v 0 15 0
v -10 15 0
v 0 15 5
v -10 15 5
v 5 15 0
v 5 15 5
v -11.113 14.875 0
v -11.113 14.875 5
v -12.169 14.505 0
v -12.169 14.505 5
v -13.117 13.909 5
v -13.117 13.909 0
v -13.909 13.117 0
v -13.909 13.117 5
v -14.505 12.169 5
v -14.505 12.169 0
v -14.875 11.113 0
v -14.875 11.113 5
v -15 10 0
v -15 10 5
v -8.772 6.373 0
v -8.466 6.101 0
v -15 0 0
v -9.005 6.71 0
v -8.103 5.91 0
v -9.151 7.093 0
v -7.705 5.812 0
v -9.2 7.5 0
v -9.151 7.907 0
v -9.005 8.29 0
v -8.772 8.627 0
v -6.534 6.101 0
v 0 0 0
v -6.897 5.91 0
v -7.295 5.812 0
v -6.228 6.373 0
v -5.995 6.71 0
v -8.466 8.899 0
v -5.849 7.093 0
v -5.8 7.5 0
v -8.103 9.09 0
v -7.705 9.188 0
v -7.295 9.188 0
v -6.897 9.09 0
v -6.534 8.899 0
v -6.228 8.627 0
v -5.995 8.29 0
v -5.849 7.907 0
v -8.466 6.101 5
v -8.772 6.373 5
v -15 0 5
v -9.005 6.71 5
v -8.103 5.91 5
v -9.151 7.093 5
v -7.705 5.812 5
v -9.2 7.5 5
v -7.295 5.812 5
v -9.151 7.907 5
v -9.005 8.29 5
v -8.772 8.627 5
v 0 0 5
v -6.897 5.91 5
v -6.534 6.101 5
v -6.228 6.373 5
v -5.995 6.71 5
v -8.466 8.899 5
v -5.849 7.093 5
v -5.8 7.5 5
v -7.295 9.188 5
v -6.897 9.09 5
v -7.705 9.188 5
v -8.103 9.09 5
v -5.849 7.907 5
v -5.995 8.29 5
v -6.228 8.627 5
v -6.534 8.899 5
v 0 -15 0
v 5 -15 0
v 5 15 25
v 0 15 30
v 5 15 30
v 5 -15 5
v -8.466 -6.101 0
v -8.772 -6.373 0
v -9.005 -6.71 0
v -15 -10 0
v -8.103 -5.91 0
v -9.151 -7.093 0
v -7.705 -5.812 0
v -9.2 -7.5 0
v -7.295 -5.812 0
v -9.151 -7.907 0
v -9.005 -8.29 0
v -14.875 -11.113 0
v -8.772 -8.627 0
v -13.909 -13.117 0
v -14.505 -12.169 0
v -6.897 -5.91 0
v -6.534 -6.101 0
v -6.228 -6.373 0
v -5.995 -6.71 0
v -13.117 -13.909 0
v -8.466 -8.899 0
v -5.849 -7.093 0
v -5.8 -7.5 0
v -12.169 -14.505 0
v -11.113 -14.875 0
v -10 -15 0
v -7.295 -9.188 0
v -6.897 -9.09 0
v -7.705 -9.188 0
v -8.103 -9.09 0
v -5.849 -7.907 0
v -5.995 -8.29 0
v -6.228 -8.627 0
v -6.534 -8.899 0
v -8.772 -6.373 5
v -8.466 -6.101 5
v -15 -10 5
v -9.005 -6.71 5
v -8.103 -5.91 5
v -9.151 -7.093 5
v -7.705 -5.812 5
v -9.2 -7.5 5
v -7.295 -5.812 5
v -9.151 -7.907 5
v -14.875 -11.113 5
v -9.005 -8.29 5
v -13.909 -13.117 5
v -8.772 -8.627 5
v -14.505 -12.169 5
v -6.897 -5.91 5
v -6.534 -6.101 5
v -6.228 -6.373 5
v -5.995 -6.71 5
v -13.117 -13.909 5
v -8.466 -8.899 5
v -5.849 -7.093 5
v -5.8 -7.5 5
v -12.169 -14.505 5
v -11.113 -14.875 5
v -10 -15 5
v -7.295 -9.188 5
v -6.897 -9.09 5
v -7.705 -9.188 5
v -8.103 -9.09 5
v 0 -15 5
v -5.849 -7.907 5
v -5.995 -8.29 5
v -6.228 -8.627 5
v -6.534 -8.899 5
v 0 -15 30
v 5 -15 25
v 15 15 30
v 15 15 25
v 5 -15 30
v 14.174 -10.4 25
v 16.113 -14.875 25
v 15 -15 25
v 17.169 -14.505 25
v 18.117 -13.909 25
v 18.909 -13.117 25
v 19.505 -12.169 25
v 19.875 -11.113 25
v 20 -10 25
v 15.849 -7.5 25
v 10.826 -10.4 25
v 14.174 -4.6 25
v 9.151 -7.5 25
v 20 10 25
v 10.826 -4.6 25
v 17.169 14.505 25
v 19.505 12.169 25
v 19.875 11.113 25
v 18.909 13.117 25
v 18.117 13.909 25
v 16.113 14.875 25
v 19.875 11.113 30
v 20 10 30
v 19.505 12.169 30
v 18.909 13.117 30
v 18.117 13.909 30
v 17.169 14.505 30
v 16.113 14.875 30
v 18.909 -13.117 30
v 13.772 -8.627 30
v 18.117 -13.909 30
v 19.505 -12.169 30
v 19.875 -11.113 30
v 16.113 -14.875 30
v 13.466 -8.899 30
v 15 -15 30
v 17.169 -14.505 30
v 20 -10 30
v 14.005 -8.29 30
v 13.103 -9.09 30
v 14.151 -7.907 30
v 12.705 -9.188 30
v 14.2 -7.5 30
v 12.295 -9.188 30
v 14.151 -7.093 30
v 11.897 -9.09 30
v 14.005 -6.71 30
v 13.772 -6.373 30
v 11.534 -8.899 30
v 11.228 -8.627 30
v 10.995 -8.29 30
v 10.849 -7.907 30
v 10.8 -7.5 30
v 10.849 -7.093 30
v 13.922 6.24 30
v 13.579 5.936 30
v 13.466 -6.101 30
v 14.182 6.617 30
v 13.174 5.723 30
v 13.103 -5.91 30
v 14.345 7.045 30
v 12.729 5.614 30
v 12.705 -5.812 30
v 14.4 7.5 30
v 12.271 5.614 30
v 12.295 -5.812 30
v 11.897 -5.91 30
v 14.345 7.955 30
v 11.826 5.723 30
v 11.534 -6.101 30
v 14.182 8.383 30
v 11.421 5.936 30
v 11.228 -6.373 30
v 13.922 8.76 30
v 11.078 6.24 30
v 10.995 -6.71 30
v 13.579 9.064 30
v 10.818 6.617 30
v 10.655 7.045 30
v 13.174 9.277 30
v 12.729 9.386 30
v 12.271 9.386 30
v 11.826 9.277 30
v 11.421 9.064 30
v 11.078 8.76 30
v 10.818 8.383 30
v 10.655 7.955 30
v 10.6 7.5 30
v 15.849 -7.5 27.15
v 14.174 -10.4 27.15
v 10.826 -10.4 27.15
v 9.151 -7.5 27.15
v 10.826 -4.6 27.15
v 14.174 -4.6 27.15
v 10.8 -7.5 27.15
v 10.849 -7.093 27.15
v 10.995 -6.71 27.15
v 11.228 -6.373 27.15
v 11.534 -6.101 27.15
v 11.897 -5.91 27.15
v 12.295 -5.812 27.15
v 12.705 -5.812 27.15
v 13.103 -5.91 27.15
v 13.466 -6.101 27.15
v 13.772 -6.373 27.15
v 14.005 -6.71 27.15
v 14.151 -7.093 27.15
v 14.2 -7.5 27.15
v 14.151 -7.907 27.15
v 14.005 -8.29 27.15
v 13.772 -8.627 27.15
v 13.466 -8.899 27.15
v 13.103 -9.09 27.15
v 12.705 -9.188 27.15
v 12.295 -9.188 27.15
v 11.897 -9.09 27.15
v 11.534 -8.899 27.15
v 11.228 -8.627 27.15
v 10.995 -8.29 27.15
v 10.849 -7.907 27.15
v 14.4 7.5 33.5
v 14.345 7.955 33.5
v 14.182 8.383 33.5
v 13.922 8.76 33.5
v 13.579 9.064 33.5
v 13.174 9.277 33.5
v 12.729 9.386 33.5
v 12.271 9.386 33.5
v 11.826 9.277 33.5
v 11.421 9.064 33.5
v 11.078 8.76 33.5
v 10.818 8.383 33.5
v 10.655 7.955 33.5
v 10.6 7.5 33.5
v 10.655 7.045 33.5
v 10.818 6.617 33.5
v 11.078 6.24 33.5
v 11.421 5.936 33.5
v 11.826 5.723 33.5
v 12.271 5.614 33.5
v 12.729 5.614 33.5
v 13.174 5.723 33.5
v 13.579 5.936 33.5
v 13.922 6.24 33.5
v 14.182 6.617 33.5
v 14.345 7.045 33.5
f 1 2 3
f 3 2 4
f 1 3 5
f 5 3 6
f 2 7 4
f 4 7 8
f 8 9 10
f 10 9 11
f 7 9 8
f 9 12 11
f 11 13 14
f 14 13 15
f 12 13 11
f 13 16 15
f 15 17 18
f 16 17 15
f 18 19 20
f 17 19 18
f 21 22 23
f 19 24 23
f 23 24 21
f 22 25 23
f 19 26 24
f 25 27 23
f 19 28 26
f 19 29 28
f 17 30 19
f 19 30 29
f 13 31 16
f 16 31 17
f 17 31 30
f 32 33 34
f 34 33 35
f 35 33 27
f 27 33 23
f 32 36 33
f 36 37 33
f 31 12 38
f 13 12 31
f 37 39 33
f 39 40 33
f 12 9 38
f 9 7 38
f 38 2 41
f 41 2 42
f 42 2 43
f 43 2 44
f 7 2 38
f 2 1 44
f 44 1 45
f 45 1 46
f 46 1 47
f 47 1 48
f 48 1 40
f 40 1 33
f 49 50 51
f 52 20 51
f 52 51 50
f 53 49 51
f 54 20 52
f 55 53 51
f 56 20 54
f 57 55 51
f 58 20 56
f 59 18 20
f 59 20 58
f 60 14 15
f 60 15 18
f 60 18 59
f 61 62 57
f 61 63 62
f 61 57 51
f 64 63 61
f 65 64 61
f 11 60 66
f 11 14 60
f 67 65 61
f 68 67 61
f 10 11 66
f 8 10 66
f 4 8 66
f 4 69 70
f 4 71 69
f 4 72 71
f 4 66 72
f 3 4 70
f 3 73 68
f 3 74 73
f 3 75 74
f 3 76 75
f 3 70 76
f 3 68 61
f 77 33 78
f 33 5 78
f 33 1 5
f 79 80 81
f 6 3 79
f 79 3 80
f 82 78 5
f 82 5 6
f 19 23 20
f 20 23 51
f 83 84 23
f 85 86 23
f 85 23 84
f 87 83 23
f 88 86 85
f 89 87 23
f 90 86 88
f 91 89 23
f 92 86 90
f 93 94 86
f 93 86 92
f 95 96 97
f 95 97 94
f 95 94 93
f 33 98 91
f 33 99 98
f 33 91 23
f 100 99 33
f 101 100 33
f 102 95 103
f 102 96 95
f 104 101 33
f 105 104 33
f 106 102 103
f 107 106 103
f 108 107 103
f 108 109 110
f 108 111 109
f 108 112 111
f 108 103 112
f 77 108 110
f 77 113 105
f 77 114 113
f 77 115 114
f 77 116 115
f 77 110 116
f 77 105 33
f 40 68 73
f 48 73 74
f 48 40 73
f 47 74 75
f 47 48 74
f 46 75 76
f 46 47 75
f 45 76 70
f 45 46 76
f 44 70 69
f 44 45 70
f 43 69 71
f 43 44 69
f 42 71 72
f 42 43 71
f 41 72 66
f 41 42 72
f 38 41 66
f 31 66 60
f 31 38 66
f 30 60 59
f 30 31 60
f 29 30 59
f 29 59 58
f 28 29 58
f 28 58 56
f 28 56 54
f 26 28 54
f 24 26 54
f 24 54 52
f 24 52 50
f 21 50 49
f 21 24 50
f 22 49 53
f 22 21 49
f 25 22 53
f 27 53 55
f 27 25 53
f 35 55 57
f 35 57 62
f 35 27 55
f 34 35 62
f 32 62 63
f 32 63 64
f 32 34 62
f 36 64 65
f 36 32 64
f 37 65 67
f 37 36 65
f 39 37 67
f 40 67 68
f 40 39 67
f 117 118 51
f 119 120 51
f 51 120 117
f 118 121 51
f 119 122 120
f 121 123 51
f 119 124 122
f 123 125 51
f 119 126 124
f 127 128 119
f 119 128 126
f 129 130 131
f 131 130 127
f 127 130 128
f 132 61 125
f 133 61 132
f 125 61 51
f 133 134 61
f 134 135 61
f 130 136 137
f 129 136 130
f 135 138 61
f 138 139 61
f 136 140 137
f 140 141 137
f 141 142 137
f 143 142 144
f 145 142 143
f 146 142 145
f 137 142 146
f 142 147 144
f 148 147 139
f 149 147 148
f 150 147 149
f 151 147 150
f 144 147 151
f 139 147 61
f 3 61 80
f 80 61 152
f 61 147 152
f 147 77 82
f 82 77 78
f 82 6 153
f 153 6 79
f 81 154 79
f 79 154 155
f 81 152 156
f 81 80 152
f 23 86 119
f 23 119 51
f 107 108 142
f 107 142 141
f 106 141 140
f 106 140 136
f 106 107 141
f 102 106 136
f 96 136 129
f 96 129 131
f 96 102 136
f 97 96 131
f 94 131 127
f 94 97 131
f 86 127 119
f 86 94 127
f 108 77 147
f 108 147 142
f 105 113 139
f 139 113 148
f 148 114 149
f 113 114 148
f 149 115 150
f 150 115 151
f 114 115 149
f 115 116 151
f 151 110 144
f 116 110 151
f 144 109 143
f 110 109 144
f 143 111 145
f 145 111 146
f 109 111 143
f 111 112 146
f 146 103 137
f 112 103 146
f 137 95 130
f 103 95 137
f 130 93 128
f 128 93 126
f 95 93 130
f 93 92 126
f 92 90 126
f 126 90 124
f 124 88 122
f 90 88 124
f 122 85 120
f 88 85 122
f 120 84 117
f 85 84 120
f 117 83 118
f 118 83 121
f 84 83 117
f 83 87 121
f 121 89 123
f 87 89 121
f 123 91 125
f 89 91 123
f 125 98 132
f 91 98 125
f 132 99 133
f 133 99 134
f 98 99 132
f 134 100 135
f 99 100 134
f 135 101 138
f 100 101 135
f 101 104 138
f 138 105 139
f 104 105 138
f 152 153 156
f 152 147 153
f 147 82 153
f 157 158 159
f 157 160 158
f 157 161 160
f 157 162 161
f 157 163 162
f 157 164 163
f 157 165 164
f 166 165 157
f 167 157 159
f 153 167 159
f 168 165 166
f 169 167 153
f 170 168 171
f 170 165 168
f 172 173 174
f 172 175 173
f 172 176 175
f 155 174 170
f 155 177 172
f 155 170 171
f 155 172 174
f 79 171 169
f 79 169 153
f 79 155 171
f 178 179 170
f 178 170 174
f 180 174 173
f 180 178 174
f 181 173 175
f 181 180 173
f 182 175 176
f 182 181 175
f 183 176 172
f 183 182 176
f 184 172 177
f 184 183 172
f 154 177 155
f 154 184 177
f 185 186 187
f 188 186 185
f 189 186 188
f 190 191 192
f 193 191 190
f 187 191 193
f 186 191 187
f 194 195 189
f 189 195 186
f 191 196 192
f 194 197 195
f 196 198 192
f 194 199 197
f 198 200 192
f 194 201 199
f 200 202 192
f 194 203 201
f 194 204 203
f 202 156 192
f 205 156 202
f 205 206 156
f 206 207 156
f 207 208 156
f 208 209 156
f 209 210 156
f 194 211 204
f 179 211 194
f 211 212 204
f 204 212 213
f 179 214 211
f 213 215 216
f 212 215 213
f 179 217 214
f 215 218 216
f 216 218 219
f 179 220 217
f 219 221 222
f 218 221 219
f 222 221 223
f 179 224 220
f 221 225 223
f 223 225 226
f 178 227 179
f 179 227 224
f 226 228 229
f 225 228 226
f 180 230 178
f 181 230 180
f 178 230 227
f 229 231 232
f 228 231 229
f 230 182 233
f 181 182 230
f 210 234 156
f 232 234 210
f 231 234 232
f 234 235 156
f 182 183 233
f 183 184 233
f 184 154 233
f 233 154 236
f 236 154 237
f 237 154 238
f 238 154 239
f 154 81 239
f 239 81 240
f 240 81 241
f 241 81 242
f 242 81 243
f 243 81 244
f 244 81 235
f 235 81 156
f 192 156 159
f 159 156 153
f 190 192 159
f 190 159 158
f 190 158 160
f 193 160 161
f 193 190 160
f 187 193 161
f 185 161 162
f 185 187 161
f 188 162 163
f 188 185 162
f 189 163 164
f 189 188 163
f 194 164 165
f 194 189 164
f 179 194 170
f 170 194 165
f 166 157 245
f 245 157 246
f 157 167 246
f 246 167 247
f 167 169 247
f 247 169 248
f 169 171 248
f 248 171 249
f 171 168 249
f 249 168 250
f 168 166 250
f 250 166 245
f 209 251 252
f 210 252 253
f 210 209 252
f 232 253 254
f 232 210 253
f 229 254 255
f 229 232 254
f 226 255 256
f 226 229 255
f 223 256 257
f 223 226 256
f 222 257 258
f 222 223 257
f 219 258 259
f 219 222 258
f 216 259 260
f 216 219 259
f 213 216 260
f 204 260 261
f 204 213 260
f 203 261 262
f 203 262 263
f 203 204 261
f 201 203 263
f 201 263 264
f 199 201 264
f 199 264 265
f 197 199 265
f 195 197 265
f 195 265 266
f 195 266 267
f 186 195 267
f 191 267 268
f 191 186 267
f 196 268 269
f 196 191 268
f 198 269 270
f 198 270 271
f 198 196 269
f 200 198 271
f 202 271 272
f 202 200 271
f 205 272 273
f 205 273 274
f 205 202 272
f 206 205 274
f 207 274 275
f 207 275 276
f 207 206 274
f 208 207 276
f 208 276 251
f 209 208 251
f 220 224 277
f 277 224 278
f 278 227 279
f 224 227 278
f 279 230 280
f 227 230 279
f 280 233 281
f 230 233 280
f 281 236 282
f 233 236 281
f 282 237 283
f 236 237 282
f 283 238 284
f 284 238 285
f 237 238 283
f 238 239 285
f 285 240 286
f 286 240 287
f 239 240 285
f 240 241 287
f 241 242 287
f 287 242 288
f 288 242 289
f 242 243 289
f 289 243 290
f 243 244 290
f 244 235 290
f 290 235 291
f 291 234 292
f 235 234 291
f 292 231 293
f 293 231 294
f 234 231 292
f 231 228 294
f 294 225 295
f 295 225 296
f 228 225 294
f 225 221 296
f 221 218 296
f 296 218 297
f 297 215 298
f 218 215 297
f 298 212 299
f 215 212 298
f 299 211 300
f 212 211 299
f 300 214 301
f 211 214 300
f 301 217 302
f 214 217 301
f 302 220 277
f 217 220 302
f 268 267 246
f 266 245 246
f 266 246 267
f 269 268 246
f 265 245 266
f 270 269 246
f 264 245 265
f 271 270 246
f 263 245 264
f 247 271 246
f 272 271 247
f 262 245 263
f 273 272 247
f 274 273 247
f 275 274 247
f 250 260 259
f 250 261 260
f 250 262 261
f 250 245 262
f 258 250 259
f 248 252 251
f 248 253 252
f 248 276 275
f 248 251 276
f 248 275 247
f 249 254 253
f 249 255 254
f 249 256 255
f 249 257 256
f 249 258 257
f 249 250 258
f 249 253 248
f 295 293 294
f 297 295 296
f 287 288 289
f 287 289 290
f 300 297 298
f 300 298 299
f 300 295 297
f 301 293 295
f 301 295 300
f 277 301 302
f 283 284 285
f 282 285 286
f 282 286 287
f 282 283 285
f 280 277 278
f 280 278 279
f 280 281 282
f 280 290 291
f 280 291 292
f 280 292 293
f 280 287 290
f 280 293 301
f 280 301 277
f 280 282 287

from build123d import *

# Parameters (mm, degrees)
PAD_DEPTH     = 5
SKETCH001_R   = 1.7
HOLE_DEPTH    = 72.8243
SKETCH002_W   = 30
SKETCH002_H   = 5
PAD001_DEPTH  = 5
SKETCH003_W   = 5
SKETCH003_H   = 30
PAD002_DEPTH  = 25
PAD003_DEPTH  = 5
POCKET_DEPTH  = 2.15
SKETCH006_R   = 1.7
HOLE001_DEPTH = 2.851
SKETCH007_R   = 1.9
PAD004_DEPTH  = 3.5


with BuildPart() as part:
    # Sketch → Pad (new body)
    with BuildSketch(Plane.XY):
        with BuildLine():
            Line((-15, 0), (0, 0))
            Line((0, 0), (0, 15))
            Line((0, 15), (-10, 15))
            ThreePointArc((-10, 15), (-13.535534, 13.535534), (-15, 10))
            Line((-15, 10), (-15, 0))
        make_face()
    pad = extrude(amount=PAD_DEPTH)

    # Mirrored: Pad across XZ
    add(pad.mirror(Plane.XZ))

    # Sketch001 (on Face5 of Mirrored) → Hole (cut, through all)
    with BuildSketch(Plane.XY.offset(5)):
        with Locations((-7.5, 7.5)):
            Circle(SKETCH001_R)
    hole = extrude(amount=-HOLE_DEPTH, mode=Mode.SUBTRACT)

    # Mirrored001: Hole across XZ
    add(hole.mirror(Plane.XZ), mode=Mode.SUBTRACT)

    # Sketch002 (on Face2 of Mirrored001) → Pad001 (join)
    with BuildSketch(Plane.YZ):
        with Locations((0, 2.5)):
            Rectangle(SKETCH002_W, SKETCH002_H)
    extrude(amount=PAD001_DEPTH)

    # Sketch003 (on Face12 of Pad001) → Pad002 (join)
    with BuildSketch(Plane.XY.offset(5)):
        with Locations((2.5, 0)):
            Rectangle(SKETCH003_W, SKETCH003_H)
    extrude(amount=PAD002_DEPTH)

    # Sketch004 (on Face16 of Pad002) → Pad003 (join)
    with BuildSketch(Plane.XY.offset(30)):
        with BuildLine():
            Line((5, 15), (15, 15))
            ThreePointArc((20, 10), (18.535534, 13.535534), (15, 15))
            Line((20, 10), (20, -10))
            ThreePointArc((15, -15), (18.535534, -13.535534), (20, -10))
            Line((15, -15), (5, -15))
            Line((5, -15), (5, 15))
        make_face()
    extrude(amount=-PAD003_DEPTH)

    # Sketch005 (on Face23 of Pad003) → Pocket (cut)
    with BuildSketch(Plane(origin=(0, 0, 25), x_dir=(1, 0, 0), z_dir=(0, 0, -1))):
        Polygon((15.848632, 7.5), (14.174316, 10.4), (10.825684, 10.4), (9.151368, 7.5), (10.825684, 4.6), (14.174316, 4.6), align=None)
    extrude(amount=-POCKET_DEPTH, mode=Mode.SUBTRACT)

    # Sketch006 (on Face35 of Pocket) → Hole001 (cut, through all)
    with BuildSketch(Plane(origin=(0, 0, 27.15), x_dir=(1, 0, 0), z_dir=(0, 0, -1))):
        with Locations((12.5, 7.5)):
            Circle(SKETCH006_R)
    extrude(amount=-HOLE001_DEPTH, mode=Mode.SUBTRACT)

    # Sketch007 (on Face25 of Hole001) → Pad004 (join)
    with BuildSketch(Plane.XY.offset(30)):
        with Locations((12.5, 7.5)):
            Circle(SKETCH007_R)
    extrude(amount=PAD004_DEPTH)


solid = part.part
